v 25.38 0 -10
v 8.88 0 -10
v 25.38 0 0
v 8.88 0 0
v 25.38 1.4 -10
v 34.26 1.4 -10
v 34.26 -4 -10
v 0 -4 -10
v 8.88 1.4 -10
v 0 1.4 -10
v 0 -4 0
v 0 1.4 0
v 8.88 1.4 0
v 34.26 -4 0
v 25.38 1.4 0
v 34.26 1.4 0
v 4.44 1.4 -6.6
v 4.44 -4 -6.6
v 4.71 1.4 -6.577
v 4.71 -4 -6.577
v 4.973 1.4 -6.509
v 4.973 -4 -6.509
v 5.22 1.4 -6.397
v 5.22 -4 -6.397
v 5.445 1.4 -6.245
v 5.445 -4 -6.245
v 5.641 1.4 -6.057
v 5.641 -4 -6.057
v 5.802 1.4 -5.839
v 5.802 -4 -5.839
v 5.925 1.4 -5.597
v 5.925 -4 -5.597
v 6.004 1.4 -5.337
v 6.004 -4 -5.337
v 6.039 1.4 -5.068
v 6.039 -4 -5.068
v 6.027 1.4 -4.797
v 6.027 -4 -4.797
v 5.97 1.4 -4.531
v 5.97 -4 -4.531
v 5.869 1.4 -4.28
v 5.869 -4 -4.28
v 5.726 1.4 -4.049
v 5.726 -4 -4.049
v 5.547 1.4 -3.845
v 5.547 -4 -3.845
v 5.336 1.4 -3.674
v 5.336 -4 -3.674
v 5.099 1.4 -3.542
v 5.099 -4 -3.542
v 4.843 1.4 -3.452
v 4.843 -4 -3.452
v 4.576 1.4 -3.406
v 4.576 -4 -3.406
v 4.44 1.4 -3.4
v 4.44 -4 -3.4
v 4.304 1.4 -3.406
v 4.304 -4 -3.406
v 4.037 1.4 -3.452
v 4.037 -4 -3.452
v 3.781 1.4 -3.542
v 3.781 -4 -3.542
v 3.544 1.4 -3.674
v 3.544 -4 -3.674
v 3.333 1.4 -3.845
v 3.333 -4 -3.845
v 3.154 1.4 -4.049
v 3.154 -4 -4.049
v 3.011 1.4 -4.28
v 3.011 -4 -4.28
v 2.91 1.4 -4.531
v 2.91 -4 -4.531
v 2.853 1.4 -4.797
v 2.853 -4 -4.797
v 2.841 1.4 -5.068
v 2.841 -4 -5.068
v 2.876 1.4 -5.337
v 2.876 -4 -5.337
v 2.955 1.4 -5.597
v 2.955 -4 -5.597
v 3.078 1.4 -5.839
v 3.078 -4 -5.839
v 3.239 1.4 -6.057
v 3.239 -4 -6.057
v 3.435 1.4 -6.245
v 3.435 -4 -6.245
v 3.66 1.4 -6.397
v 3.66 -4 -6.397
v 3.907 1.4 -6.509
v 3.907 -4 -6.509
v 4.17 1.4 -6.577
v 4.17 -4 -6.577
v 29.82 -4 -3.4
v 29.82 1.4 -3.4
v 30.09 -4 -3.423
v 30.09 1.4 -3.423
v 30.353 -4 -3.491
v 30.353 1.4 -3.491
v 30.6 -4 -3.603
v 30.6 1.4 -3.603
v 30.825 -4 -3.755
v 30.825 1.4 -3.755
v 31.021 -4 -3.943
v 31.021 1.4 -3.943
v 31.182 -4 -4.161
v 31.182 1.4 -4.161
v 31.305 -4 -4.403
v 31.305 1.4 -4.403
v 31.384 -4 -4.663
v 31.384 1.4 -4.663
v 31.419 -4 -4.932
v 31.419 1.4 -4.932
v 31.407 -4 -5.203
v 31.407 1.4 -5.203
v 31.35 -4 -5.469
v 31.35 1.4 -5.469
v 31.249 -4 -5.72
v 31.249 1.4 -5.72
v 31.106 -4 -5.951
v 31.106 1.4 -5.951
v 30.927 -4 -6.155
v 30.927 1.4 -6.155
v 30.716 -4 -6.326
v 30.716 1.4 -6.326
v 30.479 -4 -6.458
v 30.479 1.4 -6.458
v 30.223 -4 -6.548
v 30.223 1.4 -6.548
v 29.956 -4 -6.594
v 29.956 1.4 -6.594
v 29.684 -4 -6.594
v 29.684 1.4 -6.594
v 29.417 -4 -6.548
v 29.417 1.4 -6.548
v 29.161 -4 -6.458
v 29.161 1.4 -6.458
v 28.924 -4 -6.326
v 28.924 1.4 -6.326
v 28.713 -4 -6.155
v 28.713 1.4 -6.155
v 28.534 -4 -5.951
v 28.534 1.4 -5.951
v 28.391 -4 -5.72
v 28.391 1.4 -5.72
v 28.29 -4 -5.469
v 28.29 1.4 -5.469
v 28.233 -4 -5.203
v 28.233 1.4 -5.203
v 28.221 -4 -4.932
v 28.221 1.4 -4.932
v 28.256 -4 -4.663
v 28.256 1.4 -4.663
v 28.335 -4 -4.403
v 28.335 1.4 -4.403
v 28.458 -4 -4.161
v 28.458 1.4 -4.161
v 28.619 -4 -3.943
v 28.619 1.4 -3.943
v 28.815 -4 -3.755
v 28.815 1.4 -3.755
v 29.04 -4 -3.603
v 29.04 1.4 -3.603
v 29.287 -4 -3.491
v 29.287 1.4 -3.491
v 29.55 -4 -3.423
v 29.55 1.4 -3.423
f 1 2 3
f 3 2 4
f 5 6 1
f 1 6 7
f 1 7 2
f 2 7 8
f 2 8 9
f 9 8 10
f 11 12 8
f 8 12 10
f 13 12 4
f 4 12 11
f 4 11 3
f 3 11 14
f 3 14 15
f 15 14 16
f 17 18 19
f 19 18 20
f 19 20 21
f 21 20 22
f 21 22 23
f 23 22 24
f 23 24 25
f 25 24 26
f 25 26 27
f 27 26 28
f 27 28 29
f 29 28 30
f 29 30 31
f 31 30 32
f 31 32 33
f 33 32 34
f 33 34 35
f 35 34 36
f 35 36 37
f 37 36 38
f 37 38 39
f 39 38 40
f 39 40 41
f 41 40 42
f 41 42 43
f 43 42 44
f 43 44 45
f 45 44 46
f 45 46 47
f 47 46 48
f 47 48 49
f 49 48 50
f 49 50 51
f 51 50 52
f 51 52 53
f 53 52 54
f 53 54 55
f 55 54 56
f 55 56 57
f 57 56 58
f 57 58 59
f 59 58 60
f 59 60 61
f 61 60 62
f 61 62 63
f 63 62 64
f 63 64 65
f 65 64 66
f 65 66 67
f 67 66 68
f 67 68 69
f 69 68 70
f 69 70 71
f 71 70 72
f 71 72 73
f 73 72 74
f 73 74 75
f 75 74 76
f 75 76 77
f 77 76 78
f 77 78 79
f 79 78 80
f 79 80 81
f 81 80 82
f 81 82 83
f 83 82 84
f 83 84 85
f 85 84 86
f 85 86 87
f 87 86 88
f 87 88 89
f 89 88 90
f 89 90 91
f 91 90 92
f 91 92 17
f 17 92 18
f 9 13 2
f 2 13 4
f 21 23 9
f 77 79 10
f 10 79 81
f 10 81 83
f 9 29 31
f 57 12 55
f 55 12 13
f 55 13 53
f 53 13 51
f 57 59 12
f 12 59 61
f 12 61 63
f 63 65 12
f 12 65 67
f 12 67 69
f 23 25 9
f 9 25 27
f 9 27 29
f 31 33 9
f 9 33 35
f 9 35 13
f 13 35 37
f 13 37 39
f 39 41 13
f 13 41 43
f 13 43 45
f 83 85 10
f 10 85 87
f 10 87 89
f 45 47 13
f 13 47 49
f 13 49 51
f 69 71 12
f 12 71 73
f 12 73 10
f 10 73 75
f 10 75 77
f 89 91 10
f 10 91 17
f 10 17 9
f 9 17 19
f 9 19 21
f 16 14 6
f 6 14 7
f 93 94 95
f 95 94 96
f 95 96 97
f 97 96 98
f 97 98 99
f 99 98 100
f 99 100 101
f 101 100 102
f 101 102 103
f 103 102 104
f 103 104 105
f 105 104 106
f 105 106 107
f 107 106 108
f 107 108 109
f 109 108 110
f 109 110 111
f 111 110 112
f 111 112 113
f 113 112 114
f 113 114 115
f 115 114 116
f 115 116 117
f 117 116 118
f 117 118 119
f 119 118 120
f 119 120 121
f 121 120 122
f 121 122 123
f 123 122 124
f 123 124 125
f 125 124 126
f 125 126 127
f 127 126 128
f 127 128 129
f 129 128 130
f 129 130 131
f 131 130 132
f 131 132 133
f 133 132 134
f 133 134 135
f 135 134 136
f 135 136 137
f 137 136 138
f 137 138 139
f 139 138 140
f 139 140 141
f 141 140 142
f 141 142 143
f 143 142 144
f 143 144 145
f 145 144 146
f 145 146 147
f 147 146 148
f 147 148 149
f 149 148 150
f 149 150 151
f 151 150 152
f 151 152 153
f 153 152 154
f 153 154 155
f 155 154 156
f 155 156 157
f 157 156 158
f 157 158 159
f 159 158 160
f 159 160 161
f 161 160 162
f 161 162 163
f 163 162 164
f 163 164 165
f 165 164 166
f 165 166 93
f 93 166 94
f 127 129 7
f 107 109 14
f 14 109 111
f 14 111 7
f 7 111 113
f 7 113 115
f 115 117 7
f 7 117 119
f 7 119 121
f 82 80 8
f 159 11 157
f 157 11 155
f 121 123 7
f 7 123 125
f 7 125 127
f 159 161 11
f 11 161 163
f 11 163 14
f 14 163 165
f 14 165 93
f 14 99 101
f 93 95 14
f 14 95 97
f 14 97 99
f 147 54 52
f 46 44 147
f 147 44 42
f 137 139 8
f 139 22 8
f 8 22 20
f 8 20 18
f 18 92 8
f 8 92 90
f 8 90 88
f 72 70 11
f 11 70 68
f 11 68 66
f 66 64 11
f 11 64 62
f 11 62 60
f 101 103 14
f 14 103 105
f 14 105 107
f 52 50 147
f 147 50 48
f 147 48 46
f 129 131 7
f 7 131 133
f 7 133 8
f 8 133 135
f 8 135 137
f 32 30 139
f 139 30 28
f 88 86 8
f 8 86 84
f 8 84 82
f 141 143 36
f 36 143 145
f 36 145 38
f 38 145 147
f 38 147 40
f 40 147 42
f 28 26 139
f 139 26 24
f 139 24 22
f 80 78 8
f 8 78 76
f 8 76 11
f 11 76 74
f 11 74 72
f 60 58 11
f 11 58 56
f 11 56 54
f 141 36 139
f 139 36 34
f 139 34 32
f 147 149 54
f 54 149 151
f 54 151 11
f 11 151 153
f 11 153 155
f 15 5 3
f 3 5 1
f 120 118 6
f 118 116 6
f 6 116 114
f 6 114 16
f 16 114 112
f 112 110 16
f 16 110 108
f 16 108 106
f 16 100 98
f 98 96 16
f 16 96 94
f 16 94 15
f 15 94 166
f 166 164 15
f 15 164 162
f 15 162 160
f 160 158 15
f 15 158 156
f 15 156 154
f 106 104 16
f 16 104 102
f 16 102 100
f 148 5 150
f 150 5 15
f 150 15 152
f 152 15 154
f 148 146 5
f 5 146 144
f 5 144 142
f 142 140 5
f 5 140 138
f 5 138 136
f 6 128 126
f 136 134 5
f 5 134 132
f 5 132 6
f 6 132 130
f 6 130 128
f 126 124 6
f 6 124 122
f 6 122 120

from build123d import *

# Parameters (mm, degrees)
SKETCH1_W             = 8.88
SKETCH1_H             = 10
SKETCH1_R             = 1.6
BOSS_EXTRUDE1_DEPTH   = 1.4
BOSS_EXTRUDE1_2_DEPTH = 1.4
BOSS_EXTRUDE3_START   = -4
SKETCH1_5_W           = 34.26
SKETCH1_5_H           = 10
SKETCH1_5_R           = 1.6
BOSS_EXTRUDE3_DEPTH   = 4


with BuildPart() as part:
    # Sketch1 → Boss-Extrude1 (new body)
    with BuildSketch(Plane(origin=(0, 0, 0), x_dir=(1, 0, 0), z_dir=(0, 1, 0))):
        with Locations((4.44, 5)):
            Rectangle(SKETCH1_W, SKETCH1_H)
        with Locations((4.44, 5)):
            Circle(SKETCH1_R, mode=Mode.SUBTRACT)
    extrude(amount=BOSS_EXTRUDE1_DEPTH)



with BuildPart() as body_2:
    # Sketch1 → Boss-Extrude1 2 (new body)
    with BuildSketch(Plane(origin=(0, 0, 0), x_dir=(1, 0, 0), z_dir=(0, 1, 0))):
        with Locations((29.82, 5)):
            Rectangle(SKETCH1_W, SKETCH1_H)
        with Locations((29.82, 5)):
            Circle(SKETCH1_R, mode=Mode.SUBTRACT)
    extrude(amount=BOSS_EXTRUDE1_2_DEPTH)


with BuildPart() as part_1:
    add(part.part)

    add(body_2.part)  # Boss-Extrude3 merges body 2
    # Sketch1<5> → Boss-Extrude3 (add)
    with BuildSketch(Plane(origin=(0, 0, 0), x_dir=(1, 0, 0), z_dir=(0, 1, 0)).offset(BOSS_EXTRUDE3_START)):
        with Locations((17.13, 5)):
            Rectangle(SKETCH1_5_W, SKETCH1_5_H)
        with Locations((4.44, 5)):
            Circle(SKETCH1_5_R, mode=Mode.SUBTRACT)
        with Locations((29.82, 5)):
            Circle(SKETCH1_5_R, mode=Mode.SUBTRACT)
    extrude(amount=BOSS_EXTRUDE3_DEPTH)


solid = part_1.part
